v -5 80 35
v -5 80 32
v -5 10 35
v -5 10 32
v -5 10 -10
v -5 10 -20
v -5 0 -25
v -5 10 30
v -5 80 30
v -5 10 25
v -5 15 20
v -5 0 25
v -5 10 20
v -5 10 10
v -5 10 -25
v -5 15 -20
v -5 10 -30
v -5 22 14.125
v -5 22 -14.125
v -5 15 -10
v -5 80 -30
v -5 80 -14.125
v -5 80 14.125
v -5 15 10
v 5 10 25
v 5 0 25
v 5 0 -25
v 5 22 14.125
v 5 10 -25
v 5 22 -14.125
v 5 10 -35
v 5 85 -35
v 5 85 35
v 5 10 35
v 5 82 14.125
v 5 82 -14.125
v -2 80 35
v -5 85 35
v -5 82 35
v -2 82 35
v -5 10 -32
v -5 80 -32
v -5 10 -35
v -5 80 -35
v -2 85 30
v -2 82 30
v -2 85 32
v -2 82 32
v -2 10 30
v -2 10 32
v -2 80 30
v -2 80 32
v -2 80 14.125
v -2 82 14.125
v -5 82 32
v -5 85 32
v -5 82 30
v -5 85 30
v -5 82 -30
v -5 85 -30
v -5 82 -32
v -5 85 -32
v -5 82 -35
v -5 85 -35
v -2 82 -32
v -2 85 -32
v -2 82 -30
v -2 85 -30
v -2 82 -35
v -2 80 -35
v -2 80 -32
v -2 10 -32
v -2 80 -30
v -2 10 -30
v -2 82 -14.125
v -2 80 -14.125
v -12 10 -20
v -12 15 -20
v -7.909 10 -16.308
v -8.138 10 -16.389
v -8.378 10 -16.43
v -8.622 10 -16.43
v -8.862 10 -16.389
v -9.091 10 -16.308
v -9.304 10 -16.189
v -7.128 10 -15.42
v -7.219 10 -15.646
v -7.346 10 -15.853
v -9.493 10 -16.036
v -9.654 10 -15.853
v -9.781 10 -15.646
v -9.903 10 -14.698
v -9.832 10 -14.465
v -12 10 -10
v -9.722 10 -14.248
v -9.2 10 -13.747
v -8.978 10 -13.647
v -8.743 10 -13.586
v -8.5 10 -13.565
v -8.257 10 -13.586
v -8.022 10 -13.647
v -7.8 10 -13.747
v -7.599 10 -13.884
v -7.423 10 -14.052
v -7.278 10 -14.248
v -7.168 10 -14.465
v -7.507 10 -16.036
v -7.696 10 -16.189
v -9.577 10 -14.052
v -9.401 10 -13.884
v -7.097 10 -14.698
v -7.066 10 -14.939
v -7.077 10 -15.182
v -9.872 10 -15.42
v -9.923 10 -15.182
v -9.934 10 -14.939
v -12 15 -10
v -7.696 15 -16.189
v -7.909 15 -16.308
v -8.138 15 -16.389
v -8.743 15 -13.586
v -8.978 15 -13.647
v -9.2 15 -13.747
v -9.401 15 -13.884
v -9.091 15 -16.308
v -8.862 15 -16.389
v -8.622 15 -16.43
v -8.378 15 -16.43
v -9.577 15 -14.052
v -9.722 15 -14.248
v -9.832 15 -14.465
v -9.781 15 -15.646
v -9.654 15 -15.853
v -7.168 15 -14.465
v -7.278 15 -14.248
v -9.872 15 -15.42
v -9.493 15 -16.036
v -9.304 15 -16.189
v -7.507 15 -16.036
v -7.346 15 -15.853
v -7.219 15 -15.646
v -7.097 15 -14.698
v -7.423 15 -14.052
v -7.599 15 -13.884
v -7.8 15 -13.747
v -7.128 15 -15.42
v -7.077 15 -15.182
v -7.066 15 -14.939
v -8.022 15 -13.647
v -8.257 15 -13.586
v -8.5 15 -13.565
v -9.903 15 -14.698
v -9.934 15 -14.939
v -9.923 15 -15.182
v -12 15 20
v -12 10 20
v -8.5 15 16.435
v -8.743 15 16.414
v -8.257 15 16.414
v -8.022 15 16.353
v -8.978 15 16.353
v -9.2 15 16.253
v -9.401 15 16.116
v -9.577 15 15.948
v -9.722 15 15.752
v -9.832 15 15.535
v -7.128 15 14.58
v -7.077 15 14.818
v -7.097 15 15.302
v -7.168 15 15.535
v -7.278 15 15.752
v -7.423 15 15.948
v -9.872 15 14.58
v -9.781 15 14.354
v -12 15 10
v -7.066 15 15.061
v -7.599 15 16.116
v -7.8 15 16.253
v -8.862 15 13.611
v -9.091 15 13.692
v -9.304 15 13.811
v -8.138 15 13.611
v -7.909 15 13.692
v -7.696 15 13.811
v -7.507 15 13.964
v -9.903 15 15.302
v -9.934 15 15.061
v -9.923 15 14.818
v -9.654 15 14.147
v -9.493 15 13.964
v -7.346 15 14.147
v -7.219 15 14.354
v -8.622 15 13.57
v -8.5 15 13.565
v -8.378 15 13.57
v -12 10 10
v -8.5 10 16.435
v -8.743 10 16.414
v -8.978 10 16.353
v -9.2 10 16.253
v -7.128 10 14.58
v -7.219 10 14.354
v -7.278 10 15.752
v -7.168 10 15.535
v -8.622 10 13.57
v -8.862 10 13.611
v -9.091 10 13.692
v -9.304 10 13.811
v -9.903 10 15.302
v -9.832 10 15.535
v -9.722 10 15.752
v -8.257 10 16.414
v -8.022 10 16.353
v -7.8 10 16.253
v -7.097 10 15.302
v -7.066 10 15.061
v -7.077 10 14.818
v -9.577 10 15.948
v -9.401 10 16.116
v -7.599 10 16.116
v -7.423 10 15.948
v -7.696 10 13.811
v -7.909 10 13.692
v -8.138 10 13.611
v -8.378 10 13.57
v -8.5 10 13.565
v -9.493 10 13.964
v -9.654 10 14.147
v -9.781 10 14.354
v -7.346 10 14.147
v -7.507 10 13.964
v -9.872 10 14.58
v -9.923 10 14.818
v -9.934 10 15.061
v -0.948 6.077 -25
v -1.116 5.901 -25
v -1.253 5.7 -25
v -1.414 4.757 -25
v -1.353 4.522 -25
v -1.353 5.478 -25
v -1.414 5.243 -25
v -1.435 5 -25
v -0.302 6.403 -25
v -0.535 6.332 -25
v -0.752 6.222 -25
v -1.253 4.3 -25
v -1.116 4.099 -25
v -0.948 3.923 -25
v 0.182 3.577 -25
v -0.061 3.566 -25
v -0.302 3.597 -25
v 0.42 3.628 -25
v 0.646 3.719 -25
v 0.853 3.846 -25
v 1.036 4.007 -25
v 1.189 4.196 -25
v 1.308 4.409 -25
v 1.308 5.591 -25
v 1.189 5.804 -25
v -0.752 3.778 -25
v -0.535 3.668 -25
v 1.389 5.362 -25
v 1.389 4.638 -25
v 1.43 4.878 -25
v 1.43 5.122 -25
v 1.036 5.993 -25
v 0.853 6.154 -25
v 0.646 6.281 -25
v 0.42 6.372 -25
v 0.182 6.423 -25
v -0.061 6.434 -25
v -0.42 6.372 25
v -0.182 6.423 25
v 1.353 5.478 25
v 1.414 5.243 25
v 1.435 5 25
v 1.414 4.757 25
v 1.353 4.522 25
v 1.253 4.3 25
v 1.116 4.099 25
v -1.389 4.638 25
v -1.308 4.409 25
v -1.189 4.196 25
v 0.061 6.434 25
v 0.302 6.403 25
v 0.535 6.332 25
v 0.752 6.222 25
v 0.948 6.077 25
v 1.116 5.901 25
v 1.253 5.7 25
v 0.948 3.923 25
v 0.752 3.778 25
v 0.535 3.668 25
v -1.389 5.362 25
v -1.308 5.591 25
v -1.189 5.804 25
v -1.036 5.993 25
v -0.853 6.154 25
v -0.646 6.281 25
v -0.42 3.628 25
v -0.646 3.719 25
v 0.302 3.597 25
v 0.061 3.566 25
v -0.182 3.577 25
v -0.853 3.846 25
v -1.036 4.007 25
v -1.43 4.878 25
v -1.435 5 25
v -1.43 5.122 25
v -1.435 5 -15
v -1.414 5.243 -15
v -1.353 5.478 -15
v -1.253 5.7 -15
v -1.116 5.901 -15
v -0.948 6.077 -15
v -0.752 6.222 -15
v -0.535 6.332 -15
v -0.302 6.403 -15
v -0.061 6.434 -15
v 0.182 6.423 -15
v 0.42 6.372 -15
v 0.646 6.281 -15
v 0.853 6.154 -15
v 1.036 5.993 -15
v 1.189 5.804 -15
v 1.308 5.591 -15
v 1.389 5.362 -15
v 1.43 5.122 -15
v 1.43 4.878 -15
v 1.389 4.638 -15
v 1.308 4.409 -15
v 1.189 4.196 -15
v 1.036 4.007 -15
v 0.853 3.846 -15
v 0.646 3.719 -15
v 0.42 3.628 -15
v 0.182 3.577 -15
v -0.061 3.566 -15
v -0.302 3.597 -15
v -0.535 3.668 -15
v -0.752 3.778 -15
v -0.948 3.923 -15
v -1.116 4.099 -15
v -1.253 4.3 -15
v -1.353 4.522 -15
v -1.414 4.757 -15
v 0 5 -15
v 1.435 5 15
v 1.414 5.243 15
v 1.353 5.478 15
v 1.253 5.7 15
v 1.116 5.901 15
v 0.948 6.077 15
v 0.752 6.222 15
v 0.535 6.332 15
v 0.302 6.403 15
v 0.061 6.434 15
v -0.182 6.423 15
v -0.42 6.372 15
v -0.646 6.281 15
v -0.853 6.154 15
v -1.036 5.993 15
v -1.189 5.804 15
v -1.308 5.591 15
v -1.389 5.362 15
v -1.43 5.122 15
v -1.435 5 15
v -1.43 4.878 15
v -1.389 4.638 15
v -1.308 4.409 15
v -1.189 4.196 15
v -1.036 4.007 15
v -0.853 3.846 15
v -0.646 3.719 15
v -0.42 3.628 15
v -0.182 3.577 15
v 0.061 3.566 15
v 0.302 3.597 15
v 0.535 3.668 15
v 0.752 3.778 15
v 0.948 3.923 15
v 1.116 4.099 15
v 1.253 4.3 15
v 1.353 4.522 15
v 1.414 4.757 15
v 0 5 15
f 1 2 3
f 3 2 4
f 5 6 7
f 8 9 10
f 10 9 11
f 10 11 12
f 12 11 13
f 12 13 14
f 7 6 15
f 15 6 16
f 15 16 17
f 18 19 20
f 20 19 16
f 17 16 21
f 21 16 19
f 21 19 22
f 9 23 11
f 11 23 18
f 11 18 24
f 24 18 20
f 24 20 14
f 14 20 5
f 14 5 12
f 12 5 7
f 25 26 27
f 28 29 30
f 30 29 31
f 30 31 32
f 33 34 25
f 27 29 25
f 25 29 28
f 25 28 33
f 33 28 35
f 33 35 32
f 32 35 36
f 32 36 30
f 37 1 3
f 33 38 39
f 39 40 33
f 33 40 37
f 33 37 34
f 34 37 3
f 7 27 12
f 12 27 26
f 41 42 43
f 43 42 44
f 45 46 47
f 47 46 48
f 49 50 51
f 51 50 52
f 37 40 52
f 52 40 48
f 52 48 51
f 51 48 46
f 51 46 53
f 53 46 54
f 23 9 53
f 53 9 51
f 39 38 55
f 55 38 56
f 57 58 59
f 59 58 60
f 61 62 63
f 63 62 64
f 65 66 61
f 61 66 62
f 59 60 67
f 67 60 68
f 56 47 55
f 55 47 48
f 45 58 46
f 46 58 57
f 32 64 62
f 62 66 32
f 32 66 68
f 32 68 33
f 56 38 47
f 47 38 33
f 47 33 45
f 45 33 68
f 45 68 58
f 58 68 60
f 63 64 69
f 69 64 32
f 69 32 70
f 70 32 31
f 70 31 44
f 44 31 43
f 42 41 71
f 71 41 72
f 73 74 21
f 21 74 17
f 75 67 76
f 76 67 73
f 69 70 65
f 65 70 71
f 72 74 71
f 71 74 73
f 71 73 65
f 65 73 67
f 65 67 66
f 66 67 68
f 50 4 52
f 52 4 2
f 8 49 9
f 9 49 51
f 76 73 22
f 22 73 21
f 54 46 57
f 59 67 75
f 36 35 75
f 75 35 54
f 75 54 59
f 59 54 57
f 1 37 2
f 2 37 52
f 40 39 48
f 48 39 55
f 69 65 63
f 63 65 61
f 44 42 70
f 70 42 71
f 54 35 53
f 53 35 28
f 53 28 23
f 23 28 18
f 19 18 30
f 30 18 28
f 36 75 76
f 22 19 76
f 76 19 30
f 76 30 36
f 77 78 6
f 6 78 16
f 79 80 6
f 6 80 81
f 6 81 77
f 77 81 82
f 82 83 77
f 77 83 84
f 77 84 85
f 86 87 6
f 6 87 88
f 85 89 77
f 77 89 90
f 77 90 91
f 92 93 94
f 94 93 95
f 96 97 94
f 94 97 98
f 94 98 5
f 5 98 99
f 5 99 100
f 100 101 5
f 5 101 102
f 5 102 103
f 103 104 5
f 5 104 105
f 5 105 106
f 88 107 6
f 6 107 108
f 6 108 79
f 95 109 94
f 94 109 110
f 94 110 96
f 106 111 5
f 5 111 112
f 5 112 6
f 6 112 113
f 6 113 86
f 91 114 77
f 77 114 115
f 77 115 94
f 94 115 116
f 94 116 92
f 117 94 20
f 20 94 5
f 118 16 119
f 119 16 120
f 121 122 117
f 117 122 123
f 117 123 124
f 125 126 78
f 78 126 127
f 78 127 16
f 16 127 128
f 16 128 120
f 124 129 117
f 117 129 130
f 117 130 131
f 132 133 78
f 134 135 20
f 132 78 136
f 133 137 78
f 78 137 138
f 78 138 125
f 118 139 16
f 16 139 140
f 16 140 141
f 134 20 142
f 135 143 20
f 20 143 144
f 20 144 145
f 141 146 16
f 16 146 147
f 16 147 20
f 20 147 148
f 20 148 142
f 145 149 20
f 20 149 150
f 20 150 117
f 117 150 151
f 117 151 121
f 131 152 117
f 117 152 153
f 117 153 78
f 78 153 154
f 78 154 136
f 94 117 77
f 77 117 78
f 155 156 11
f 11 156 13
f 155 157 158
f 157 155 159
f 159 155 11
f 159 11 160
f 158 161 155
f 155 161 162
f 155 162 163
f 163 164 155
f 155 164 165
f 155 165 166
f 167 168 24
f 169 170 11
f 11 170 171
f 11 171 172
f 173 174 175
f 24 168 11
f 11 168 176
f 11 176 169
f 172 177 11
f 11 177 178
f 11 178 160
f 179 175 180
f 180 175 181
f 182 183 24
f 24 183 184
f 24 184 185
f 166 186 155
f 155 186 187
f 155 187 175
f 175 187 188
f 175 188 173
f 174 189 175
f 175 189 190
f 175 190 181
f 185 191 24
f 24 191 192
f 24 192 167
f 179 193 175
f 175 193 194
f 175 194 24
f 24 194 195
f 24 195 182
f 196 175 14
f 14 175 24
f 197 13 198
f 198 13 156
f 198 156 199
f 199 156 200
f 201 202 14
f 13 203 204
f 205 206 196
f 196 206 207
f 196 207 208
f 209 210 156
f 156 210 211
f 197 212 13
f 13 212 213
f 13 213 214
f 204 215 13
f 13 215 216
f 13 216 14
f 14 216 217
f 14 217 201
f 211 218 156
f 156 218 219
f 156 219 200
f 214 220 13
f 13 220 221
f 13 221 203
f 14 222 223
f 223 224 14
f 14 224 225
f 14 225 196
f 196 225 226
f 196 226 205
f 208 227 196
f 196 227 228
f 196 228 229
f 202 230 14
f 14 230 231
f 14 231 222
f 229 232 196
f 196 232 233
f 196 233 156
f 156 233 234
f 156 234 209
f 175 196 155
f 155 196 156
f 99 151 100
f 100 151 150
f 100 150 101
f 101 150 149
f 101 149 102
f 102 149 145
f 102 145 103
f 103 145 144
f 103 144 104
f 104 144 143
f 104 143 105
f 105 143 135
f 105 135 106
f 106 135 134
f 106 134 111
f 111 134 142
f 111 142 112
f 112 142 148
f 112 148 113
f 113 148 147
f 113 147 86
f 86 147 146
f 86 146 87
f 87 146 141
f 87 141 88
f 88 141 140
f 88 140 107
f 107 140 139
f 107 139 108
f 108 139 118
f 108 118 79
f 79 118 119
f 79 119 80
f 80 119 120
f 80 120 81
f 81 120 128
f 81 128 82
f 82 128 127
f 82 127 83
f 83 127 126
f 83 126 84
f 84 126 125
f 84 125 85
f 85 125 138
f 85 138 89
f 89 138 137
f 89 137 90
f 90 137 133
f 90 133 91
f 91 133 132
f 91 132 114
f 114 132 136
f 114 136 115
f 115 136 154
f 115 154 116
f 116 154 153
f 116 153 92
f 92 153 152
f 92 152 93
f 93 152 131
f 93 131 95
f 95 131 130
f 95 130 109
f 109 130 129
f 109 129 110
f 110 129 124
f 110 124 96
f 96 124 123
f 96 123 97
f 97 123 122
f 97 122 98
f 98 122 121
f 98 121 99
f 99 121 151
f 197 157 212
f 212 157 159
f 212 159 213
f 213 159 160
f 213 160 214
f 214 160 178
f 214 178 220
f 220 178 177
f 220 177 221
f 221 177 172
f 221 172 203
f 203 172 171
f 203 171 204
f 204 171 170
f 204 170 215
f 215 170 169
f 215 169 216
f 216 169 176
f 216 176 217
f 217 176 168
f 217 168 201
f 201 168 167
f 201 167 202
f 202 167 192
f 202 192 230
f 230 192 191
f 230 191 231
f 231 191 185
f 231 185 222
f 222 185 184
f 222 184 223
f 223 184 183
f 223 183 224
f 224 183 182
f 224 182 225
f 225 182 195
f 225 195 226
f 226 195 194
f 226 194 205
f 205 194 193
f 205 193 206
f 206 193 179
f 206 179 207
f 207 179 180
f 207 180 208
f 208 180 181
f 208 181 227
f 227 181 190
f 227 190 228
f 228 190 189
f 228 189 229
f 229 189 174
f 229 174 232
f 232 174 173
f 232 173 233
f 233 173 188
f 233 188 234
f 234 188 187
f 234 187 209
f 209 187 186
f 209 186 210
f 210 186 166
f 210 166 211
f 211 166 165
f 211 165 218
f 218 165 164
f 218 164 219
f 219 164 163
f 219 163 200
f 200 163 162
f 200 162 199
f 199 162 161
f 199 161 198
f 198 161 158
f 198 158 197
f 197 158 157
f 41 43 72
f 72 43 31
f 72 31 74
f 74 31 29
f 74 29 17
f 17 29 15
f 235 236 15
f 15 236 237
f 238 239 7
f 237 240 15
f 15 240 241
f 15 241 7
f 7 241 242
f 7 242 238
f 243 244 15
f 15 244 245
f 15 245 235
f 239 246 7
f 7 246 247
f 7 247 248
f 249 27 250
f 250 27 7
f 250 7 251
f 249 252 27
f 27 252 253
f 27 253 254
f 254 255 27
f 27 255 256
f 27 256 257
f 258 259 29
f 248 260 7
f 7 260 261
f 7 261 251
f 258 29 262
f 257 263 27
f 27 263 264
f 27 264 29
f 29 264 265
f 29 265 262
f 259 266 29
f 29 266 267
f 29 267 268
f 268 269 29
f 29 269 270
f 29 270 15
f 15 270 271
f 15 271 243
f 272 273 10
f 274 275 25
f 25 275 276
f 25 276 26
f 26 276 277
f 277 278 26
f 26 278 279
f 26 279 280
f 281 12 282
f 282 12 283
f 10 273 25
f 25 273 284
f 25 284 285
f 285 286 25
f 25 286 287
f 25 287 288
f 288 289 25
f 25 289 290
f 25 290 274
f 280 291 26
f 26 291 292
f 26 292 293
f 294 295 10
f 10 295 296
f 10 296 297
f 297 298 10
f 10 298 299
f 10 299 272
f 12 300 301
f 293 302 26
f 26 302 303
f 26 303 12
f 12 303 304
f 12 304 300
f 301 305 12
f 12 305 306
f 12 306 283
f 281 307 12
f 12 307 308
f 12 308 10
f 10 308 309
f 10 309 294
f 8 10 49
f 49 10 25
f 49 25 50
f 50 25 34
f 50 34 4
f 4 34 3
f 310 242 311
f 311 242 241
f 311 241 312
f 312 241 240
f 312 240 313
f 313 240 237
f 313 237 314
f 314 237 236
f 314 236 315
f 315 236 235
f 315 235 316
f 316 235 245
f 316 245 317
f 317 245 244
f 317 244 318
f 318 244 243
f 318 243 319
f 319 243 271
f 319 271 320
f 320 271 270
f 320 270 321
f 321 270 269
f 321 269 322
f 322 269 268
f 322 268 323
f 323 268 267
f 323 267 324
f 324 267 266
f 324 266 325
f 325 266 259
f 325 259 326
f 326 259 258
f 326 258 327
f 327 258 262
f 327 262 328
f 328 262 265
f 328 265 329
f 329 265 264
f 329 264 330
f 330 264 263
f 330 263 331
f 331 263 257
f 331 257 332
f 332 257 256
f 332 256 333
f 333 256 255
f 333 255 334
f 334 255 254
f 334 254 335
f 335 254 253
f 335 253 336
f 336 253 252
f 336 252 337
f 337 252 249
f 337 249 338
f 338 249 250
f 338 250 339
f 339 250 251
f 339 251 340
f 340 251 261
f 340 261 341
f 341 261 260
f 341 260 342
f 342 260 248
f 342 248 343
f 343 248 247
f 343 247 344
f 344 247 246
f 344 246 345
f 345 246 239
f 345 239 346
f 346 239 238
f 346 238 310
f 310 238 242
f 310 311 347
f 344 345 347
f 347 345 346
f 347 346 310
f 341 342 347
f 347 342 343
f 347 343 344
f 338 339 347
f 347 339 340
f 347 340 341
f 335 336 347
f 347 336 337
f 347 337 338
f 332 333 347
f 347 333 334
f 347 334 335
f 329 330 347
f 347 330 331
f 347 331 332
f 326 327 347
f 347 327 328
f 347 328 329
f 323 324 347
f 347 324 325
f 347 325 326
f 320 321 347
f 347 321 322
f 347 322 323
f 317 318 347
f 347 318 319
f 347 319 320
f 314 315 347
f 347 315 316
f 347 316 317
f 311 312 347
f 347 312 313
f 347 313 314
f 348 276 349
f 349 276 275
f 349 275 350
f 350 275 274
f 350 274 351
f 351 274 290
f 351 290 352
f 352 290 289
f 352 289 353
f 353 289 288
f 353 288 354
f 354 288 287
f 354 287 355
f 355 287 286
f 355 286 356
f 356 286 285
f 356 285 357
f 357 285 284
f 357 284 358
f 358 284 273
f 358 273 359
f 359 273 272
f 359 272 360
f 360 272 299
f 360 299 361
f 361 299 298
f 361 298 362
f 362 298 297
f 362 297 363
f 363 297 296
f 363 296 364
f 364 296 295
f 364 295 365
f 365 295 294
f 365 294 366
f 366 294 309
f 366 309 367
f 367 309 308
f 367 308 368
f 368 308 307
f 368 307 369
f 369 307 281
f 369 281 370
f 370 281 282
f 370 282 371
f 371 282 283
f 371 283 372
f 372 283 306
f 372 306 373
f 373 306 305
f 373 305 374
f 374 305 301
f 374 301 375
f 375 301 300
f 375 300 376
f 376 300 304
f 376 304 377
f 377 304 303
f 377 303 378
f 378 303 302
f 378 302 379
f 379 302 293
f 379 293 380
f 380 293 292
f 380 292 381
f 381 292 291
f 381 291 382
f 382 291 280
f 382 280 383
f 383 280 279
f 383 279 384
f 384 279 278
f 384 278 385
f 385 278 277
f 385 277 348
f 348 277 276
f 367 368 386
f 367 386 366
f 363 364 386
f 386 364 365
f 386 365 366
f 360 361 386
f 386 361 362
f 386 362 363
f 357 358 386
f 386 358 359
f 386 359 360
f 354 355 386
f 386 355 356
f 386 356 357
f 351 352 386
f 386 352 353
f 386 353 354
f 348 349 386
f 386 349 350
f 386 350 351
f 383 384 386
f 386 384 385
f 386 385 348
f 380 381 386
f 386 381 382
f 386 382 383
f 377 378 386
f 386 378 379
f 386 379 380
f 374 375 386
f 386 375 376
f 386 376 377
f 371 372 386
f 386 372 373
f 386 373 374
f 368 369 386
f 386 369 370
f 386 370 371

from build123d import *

# Parameters (mm, degrees)
CROQUIS1_W              = 10
CROQUIS1_H              = 70
SALIENTE_EXTRUIR1_DEPTH = 10
CROQUIS8_W              = 10
CROQUIS8_H              = 70
SALIENTE_EXTRUIR3_DEPTH = 75
CROQUIS9_W              = 2
CROQUIS9_H              = 75
CORTAR_EXTRUIR4_DEPTH   = 3
CROQUIS10_W             = 70
CROQUIS10_H             = 2
CORTAR_EXTRUIR5_DEPTH   = 3
CORTAR_EXTRUIR6_REACH   = 12
CROQUIS11_W             = 28.25
CROQUIS11_H             = 60
CROQUIS16_W             = 10
CROQUIS16_H             = 5
SALIENTE_EXTRUIR5_DEPTH = 7
CROQUIS17_R             = 1.435
CORTAR_EXTRUIR9_DEPTH   = 5
CROQUIS18_W             = 10
CROQUIS18_H             = 10
CORTAR_EXTRUIR10_DEPTH  = 10
CROQUIS19_R             = 1.435
CORTAR_EXTRUIR11_DEPTH  = 10


with BuildPart() as part:
    # Croquis1 → Saliente-Extruir1 (new body)
    with BuildSketch(Plane(origin=(0, 0, 0), x_dir=(1, 0, 0), z_dir=(0, 1, 0))):
        Rectangle(CROQUIS1_W, CROQUIS1_H)
    extrude(amount=SALIENTE_EXTRUIR1_DEPTH)

    # Croquis8 → Saliente-Extruir3 (add)
    with BuildSketch(Plane(origin=(0, 10, 0), x_dir=(1, 0, 0), z_dir=(0, 1, 0))):
        Rectangle(CROQUIS8_W, CROQUIS8_H)
    extrude(amount=SALIENTE_EXTRUIR3_DEPTH)

    # Croquis9 → Cortar-Extruir4 (cut)
    with BuildSketch(Plane.ZY.offset(5)):
        with Locations((-31, 47.5)):
            Rectangle(CROQUIS9_W, CROQUIS9_H)
    cortar_extruir4 = extrude(amount=-CORTAR_EXTRUIR4_DEPTH, mode=Mode.SUBTRACT)

    # Simetría2: Cortar-Extruir4 across plane
    add(cortar_extruir4.mirror(Plane.XY), mode=Mode.SUBTRACT)

    # Croquis10 → Cortar-Extruir5 (cut)
    with BuildSketch(Plane.ZY.offset(5)):
        with Locations((0, 81)):
            Rectangle(CROQUIS10_W, CROQUIS10_H)
    extrude(amount=-CORTAR_EXTRUIR5_DEPTH, mode=Mode.SUBTRACT)

    # Croquis11 → Cortar-Extruir6 (cut, up to next)
    with BuildSketch(Plane.ZY.offset(5), mode=Mode.PRIVATE) as cortar_extruir6_sk1:
        with Locations((0, 52)):
            Rectangle(CROQUIS11_W, CROQUIS11_H)
    cortar_extruir6_tool1 = extrude(cortar_extruir6_sk1.sketch, amount=-CORTAR_EXTRUIR6_REACH, mode=Mode.PRIVATE) & part.part
    add(cortar_extruir6_tool1.solids().sort_by_distance((-5, 52, 0))[0], mode=Mode.SUBTRACT)

    # Croquis16 → Saliente-Extruir5 (add)
    with BuildSketch(Plane.ZY.offset(5)):
        with Locations((-15, 12.5)):
            Rectangle(CROQUIS16_W, CROQUIS16_H)
    saliente_extruir5 = extrude(amount=SALIENTE_EXTRUIR5_DEPTH)

    # Simetría5: Saliente-Extruir5 across plane
    add(saliente_extruir5.mirror(Plane.XY))

    # Croquis17 → Cortar-Extruir9 (cut)
    with BuildSketch(Plane(origin=(0, 15, 0), x_dir=(1, 0, 0), z_dir=(0, 1, 0))):
        with Locations((-8.5, 15)):
            Circle(CROQUIS17_R)
    cortar_extruir9 = extrude(amount=-CORTAR_EXTRUIR9_DEPTH, mode=Mode.SUBTRACT)

    # Simetría6: Cortar-Extruir9 across plane
    add(cortar_extruir9.mirror(Plane.XY), mode=Mode.SUBTRACT)

    # Croquis18 → Cortar-Extruir10 (cut)
    with BuildSketch(Plane.ZY.offset(5)):
        with Locations((-30, 5)):
            Rectangle(CROQUIS18_W, CROQUIS18_H)
    cortar_extruir10 = extrude(amount=-CORTAR_EXTRUIR10_DEPTH, mode=Mode.SUBTRACT)

    # Simetría7: Cortar-Extruir10 across plane
    add(cortar_extruir10.mirror(Plane.XY), mode=Mode.SUBTRACT)

    # Croquis19 → Cortar-Extruir11 (cut)
    with BuildSketch(Plane(origin=(0, 0, -25), x_dir=(-1, 0, 0), z_dir=(0, 0, -1))):
        with Locations((0, 5)):
            Circle(CROQUIS19_R)
    cortar_extruir11 = extrude(amount=-CORTAR_EXTRUIR11_DEPTH, mode=Mode.SUBTRACT)

    # Simetría8: Cortar-Extruir11 across plane
    add(cortar_extruir11.mirror(Plane.XY), mode=Mode.SUBTRACT)


solid = part.part
